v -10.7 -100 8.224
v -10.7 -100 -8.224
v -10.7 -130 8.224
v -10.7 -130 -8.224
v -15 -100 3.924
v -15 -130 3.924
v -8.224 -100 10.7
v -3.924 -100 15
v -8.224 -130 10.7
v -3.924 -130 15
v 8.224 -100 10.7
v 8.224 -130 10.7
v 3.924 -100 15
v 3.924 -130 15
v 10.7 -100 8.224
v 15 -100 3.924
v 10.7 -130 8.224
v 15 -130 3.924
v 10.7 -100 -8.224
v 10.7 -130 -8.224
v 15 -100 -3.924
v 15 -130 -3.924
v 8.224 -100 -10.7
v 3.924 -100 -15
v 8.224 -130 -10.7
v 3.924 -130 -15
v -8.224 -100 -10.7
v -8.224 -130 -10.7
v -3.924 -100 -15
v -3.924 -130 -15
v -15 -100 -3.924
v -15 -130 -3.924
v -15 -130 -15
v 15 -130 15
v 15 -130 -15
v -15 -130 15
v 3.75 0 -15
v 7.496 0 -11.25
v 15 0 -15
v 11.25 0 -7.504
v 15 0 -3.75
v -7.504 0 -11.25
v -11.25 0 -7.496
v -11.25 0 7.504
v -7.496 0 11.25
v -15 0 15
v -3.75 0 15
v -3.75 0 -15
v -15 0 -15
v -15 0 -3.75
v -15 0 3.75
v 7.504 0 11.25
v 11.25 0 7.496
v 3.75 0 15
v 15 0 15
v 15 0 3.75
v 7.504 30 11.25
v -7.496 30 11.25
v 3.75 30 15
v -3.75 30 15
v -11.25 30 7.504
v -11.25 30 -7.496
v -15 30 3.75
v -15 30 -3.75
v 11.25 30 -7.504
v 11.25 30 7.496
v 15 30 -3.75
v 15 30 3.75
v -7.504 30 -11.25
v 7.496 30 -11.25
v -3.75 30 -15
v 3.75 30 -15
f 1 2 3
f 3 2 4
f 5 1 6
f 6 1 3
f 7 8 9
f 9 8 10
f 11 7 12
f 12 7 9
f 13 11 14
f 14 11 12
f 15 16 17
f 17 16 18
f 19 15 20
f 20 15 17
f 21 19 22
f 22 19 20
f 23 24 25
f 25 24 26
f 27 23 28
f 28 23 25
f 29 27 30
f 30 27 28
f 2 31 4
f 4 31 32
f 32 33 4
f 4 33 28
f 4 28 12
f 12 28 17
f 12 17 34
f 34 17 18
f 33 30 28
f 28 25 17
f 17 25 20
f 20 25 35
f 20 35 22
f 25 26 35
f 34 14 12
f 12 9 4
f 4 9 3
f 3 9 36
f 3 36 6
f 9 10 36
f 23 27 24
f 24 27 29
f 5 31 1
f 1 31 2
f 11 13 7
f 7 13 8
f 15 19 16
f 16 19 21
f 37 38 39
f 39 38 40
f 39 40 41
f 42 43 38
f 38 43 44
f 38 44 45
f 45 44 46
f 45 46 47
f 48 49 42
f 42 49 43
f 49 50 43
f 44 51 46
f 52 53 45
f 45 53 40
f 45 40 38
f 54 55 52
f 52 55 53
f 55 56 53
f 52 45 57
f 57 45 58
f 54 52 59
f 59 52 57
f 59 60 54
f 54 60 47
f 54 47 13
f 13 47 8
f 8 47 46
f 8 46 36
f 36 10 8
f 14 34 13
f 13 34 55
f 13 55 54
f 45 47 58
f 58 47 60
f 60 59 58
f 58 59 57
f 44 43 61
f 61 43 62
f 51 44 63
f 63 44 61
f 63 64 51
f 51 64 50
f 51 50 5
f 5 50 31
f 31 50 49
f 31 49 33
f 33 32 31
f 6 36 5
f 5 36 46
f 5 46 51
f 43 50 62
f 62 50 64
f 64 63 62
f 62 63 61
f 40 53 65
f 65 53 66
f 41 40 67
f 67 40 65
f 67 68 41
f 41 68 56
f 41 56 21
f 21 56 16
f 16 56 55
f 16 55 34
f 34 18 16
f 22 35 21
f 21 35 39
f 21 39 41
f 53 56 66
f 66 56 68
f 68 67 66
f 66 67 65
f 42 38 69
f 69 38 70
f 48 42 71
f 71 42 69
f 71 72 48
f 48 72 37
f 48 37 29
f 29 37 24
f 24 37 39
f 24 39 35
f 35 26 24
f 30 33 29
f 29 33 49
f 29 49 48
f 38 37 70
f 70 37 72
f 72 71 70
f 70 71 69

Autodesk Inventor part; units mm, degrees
ref_plane "YZ Plane" through (0, 0, 0) normal (1, 0, 0) x (0, 1, 0)
ref_plane "XZ Plane" through (0, 0, 0) normal (0, 1, 0) x (-1, 0, 0)
ref_plane "XY Plane" through (0, 0, 0) normal (0, 0, 1) x (1, 0, 0)
sketch "Skizze1" plane through (0, 0, 0) normal (0, 1, 0) x (-1, 0, 0)
  line L0 (15, 15) -> (-15, 15)
  line L1 (-15, 15) -> (-15, -15)
  line L2 (-15, -15) -> (15, -15)
  line L3 (15, -15) -> (15, 15)
  line L4 (15, 0) -> (11, 0) construction
  line L5 (11.25, 7.5042) -> (11.25, -7.4958)
  line L6 (15, 3.75) -> (15, -3.75)
  line L7 (11.25, 7.5042) -> (15, 3.75)
  line L8 (11.25, -7.4958) -> (15, -3.75)
  line L9 (-7.5042, 11.25) -> (-3.75, 15)
  line L10 (-7.5042, 11.25) -> (7.4958, 11.25)
  line L11 (7.4958, 11.25) -> (3.75, 15)
  line L12 (15, 15) -> (-15, 15)
  line L13 (-11.25, -7.5042) -> (-15, -3.75)
  line L14 (-11.25, -7.5042) -> (-11.25, 7.4958)
  line L15 (-11.25, 7.4958) -> (-15, 3.75)
  line L16 (-15, 15) -> (-15, -15)
  line L17 (7.5042, -11.25) -> (3.75, -15)
  line L18 (7.5042, -11.25) -> (-7.4958, -11.25)
  line L19 (-7.4958, -11.25) -> (-3.75, -15)
  line L20 (-15, -15) -> (15, -15)
  line L21 (15, -15) -> (-15, -15)
  line L22 (-15, -15) -> (-15, 15)
  line L23 (-15, 15) -> (15, 15)
  line L24 (15, 15) -> (15, -15)
  point P0 (0, 0)
  point P1 (0, 15)
  point P2 (-15, 0)
  point P3 (0, -15)
  point P4 (-3.75, -15)
  point P5 (3.75, -15)
  point P6 (-15, 3.75)
  point P7 (-15, -3.75)
  point P8 (3.75, 15)
  point P9 (-3.75, 15)
  dimension "d0" = 15
  dimension "d1" = 30
  dimension "d2" = 30
  dimension "d3" = 15
  dimension "d4" = 4
  dimension "d5" = 15
  dimension "d6" = 7.5
  dimension "d7" = 7.5
  dimension "d8" = 3.75
  dimension "d11" = 360
extrude "Extrusion1" add sketch "Skizze1" along normal blind 30 contours L11 L10 L9 L0 | L3 L8 L5 L7 | L15 L14 L13 L1 | L2 L19 L18 L17
extrude "Extrusion2" add sketch "Skizze1" against normal blind 70
sketch "Skizze4" plane through (0, -70, 0) normal (0, -1, 0) x (1, 0, 0)
  line L0 (-15.2121, -3.7121) -> (-10.7, -8.2243)
  line L1 (-10.7, -8.2243) -> (-10.7, 8.2243)
  line L2 (-10.7, 8.2243) -> (-15.2121, 3.7121)
  line L3 (-15, -3.9243) -> (-15, 3.9243)
  line L4 (3.7121, -15.2121) -> (8.2243, -10.7)
  line L5 (8.2243, -10.7) -> (-8.2243, -10.7)
  line L6 (-8.2243, -10.7) -> (-3.7121, -15.2121)
  line L7 (3.9243, -15) -> (-3.9243, -15)
  line L8 (15.2121, 3.7121) -> (10.7, 8.2243)
  line L9 (10.7, 8.2243) -> (10.7, -8.2243)
  line L10 (10.7, -8.2243) -> (15.2121, -3.7121)
  line L11 (15, 3.9243) -> (15, -3.9243)
  line L12 (-3.7121, 15.2121) -> (-8.2243, 10.7)
  line L13 (-8.2243, 10.7) -> (8.2243, 10.7)
  line L14 (8.2243, 10.7) -> (3.7121, 15.2121)
  line L15 (-3.9243, 15) -> (3.9243, 15)
  line L16 (-15, 15) -> (-3.75, 15) projected
  line L17 (-15, 15) -> (15, 15)
  line L18 (15, 15) -> (15, -15)
  line L19 (15, -15) -> (-15, -15)
  line L20 (-15, -15) -> (-15, 15)
  point P0 (0, 0)
  point P1 (0, 0)
  point P2 (-290.3305, 55.2757)
  point P3 (-298.179, 55.2757)
  point P4 (-3.9243, 15)
  dimension "d27" = 360
extrude "Extrusion4" add sketch "Skizze4" along normal blind 30
sketch "Skizze5" plane through (0, -100, 0) normal (0, -1, 0) x (1, 0, 0)
  line L0 (18.5438, 0) -> (-21.4353, 0) construction
  line L1 (-11, 7.5) -> (-11, -7.5)
  line L2 (-11, 7.5) -> (-15, 3.5)
  line L3 (-11, -7.5) -> (-15, -3.5)
  line L4 (-15.2121, -3.7121) -> (-10.7, -8.2243)
  line L5 (-10.7, -8.2243) -> (-10.7, 8.2243)
  line L6 (-10.7, 8.2243) -> (-15.2121, 3.7121)
  line L7 (-15, -3.9243) -> (-15, 3.9243)
  line L8 (3.7121, -15.2121) -> (8.2243, -10.7)
  line L9 (8.2243, -10.7) -> (-8.2243, -10.7)
  line L10 (-8.2243, -10.7) -> (-3.7121, -15.2121)
  line L11 (3.9243, -15) -> (-3.9243, -15)
  line L12 (15.2121, 3.7121) -> (10.7, 8.2243)
  line L13 (10.7, 8.2243) -> (10.7, -8.2243)
  line L14 (10.7, -8.2243) -> (15.2121, -3.7121)
  line L15 (15, 3.9243) -> (15, -3.9243)
  line L16 (-3.7121, 15.2121) -> (-8.2243, 10.7)
  line L17 (-8.2243, 10.7) -> (8.2243, 10.7)
  line L18 (8.2243, 10.7) -> (3.7121, 15.2121)
  line L19 (-3.9243, 15) -> (3.9243, 15)
  line L20 (15, 15) -> (-15, 15) projected
  line L21 (3.9243, 15) -> (15, 15)
  line L22 (15, 15) -> (15, 3.9243)
  line L23 (15, -3.9243) -> (15, -15)
  line L24 (15, -15) -> (3.9243, -15)
  line L25 (-3.9243, -15) -> (-15, -15)
  line L26 (-15, -15) -> (-15, -3.9243)
  line L27 (-15, 3.9243) -> (-15, 15)
  line L28 (-15, 15) -> (-3.9243, 15)
  point P0 (0, 0)
  dimension "d34" = 15
  dimension "d38" = 0.3
  dimension "d39" = 360
extrude "Extrusion5" add sketch "Skizze5" along normal blind 30 contours L27 L20 L16 L17 L18 L22 L12 L13 L14 L23 L24 L8 L9 L10 L25 L26 L4 L5 L6
equation "\"d0\" = 0.5 * d1"
equation "\"d3\" = 0.5 * d2"
equation "\"d6\" = 0.5 * d5"
equation "\"d8\" = 0.5 * d7"
properties part number "TestEbene2"
